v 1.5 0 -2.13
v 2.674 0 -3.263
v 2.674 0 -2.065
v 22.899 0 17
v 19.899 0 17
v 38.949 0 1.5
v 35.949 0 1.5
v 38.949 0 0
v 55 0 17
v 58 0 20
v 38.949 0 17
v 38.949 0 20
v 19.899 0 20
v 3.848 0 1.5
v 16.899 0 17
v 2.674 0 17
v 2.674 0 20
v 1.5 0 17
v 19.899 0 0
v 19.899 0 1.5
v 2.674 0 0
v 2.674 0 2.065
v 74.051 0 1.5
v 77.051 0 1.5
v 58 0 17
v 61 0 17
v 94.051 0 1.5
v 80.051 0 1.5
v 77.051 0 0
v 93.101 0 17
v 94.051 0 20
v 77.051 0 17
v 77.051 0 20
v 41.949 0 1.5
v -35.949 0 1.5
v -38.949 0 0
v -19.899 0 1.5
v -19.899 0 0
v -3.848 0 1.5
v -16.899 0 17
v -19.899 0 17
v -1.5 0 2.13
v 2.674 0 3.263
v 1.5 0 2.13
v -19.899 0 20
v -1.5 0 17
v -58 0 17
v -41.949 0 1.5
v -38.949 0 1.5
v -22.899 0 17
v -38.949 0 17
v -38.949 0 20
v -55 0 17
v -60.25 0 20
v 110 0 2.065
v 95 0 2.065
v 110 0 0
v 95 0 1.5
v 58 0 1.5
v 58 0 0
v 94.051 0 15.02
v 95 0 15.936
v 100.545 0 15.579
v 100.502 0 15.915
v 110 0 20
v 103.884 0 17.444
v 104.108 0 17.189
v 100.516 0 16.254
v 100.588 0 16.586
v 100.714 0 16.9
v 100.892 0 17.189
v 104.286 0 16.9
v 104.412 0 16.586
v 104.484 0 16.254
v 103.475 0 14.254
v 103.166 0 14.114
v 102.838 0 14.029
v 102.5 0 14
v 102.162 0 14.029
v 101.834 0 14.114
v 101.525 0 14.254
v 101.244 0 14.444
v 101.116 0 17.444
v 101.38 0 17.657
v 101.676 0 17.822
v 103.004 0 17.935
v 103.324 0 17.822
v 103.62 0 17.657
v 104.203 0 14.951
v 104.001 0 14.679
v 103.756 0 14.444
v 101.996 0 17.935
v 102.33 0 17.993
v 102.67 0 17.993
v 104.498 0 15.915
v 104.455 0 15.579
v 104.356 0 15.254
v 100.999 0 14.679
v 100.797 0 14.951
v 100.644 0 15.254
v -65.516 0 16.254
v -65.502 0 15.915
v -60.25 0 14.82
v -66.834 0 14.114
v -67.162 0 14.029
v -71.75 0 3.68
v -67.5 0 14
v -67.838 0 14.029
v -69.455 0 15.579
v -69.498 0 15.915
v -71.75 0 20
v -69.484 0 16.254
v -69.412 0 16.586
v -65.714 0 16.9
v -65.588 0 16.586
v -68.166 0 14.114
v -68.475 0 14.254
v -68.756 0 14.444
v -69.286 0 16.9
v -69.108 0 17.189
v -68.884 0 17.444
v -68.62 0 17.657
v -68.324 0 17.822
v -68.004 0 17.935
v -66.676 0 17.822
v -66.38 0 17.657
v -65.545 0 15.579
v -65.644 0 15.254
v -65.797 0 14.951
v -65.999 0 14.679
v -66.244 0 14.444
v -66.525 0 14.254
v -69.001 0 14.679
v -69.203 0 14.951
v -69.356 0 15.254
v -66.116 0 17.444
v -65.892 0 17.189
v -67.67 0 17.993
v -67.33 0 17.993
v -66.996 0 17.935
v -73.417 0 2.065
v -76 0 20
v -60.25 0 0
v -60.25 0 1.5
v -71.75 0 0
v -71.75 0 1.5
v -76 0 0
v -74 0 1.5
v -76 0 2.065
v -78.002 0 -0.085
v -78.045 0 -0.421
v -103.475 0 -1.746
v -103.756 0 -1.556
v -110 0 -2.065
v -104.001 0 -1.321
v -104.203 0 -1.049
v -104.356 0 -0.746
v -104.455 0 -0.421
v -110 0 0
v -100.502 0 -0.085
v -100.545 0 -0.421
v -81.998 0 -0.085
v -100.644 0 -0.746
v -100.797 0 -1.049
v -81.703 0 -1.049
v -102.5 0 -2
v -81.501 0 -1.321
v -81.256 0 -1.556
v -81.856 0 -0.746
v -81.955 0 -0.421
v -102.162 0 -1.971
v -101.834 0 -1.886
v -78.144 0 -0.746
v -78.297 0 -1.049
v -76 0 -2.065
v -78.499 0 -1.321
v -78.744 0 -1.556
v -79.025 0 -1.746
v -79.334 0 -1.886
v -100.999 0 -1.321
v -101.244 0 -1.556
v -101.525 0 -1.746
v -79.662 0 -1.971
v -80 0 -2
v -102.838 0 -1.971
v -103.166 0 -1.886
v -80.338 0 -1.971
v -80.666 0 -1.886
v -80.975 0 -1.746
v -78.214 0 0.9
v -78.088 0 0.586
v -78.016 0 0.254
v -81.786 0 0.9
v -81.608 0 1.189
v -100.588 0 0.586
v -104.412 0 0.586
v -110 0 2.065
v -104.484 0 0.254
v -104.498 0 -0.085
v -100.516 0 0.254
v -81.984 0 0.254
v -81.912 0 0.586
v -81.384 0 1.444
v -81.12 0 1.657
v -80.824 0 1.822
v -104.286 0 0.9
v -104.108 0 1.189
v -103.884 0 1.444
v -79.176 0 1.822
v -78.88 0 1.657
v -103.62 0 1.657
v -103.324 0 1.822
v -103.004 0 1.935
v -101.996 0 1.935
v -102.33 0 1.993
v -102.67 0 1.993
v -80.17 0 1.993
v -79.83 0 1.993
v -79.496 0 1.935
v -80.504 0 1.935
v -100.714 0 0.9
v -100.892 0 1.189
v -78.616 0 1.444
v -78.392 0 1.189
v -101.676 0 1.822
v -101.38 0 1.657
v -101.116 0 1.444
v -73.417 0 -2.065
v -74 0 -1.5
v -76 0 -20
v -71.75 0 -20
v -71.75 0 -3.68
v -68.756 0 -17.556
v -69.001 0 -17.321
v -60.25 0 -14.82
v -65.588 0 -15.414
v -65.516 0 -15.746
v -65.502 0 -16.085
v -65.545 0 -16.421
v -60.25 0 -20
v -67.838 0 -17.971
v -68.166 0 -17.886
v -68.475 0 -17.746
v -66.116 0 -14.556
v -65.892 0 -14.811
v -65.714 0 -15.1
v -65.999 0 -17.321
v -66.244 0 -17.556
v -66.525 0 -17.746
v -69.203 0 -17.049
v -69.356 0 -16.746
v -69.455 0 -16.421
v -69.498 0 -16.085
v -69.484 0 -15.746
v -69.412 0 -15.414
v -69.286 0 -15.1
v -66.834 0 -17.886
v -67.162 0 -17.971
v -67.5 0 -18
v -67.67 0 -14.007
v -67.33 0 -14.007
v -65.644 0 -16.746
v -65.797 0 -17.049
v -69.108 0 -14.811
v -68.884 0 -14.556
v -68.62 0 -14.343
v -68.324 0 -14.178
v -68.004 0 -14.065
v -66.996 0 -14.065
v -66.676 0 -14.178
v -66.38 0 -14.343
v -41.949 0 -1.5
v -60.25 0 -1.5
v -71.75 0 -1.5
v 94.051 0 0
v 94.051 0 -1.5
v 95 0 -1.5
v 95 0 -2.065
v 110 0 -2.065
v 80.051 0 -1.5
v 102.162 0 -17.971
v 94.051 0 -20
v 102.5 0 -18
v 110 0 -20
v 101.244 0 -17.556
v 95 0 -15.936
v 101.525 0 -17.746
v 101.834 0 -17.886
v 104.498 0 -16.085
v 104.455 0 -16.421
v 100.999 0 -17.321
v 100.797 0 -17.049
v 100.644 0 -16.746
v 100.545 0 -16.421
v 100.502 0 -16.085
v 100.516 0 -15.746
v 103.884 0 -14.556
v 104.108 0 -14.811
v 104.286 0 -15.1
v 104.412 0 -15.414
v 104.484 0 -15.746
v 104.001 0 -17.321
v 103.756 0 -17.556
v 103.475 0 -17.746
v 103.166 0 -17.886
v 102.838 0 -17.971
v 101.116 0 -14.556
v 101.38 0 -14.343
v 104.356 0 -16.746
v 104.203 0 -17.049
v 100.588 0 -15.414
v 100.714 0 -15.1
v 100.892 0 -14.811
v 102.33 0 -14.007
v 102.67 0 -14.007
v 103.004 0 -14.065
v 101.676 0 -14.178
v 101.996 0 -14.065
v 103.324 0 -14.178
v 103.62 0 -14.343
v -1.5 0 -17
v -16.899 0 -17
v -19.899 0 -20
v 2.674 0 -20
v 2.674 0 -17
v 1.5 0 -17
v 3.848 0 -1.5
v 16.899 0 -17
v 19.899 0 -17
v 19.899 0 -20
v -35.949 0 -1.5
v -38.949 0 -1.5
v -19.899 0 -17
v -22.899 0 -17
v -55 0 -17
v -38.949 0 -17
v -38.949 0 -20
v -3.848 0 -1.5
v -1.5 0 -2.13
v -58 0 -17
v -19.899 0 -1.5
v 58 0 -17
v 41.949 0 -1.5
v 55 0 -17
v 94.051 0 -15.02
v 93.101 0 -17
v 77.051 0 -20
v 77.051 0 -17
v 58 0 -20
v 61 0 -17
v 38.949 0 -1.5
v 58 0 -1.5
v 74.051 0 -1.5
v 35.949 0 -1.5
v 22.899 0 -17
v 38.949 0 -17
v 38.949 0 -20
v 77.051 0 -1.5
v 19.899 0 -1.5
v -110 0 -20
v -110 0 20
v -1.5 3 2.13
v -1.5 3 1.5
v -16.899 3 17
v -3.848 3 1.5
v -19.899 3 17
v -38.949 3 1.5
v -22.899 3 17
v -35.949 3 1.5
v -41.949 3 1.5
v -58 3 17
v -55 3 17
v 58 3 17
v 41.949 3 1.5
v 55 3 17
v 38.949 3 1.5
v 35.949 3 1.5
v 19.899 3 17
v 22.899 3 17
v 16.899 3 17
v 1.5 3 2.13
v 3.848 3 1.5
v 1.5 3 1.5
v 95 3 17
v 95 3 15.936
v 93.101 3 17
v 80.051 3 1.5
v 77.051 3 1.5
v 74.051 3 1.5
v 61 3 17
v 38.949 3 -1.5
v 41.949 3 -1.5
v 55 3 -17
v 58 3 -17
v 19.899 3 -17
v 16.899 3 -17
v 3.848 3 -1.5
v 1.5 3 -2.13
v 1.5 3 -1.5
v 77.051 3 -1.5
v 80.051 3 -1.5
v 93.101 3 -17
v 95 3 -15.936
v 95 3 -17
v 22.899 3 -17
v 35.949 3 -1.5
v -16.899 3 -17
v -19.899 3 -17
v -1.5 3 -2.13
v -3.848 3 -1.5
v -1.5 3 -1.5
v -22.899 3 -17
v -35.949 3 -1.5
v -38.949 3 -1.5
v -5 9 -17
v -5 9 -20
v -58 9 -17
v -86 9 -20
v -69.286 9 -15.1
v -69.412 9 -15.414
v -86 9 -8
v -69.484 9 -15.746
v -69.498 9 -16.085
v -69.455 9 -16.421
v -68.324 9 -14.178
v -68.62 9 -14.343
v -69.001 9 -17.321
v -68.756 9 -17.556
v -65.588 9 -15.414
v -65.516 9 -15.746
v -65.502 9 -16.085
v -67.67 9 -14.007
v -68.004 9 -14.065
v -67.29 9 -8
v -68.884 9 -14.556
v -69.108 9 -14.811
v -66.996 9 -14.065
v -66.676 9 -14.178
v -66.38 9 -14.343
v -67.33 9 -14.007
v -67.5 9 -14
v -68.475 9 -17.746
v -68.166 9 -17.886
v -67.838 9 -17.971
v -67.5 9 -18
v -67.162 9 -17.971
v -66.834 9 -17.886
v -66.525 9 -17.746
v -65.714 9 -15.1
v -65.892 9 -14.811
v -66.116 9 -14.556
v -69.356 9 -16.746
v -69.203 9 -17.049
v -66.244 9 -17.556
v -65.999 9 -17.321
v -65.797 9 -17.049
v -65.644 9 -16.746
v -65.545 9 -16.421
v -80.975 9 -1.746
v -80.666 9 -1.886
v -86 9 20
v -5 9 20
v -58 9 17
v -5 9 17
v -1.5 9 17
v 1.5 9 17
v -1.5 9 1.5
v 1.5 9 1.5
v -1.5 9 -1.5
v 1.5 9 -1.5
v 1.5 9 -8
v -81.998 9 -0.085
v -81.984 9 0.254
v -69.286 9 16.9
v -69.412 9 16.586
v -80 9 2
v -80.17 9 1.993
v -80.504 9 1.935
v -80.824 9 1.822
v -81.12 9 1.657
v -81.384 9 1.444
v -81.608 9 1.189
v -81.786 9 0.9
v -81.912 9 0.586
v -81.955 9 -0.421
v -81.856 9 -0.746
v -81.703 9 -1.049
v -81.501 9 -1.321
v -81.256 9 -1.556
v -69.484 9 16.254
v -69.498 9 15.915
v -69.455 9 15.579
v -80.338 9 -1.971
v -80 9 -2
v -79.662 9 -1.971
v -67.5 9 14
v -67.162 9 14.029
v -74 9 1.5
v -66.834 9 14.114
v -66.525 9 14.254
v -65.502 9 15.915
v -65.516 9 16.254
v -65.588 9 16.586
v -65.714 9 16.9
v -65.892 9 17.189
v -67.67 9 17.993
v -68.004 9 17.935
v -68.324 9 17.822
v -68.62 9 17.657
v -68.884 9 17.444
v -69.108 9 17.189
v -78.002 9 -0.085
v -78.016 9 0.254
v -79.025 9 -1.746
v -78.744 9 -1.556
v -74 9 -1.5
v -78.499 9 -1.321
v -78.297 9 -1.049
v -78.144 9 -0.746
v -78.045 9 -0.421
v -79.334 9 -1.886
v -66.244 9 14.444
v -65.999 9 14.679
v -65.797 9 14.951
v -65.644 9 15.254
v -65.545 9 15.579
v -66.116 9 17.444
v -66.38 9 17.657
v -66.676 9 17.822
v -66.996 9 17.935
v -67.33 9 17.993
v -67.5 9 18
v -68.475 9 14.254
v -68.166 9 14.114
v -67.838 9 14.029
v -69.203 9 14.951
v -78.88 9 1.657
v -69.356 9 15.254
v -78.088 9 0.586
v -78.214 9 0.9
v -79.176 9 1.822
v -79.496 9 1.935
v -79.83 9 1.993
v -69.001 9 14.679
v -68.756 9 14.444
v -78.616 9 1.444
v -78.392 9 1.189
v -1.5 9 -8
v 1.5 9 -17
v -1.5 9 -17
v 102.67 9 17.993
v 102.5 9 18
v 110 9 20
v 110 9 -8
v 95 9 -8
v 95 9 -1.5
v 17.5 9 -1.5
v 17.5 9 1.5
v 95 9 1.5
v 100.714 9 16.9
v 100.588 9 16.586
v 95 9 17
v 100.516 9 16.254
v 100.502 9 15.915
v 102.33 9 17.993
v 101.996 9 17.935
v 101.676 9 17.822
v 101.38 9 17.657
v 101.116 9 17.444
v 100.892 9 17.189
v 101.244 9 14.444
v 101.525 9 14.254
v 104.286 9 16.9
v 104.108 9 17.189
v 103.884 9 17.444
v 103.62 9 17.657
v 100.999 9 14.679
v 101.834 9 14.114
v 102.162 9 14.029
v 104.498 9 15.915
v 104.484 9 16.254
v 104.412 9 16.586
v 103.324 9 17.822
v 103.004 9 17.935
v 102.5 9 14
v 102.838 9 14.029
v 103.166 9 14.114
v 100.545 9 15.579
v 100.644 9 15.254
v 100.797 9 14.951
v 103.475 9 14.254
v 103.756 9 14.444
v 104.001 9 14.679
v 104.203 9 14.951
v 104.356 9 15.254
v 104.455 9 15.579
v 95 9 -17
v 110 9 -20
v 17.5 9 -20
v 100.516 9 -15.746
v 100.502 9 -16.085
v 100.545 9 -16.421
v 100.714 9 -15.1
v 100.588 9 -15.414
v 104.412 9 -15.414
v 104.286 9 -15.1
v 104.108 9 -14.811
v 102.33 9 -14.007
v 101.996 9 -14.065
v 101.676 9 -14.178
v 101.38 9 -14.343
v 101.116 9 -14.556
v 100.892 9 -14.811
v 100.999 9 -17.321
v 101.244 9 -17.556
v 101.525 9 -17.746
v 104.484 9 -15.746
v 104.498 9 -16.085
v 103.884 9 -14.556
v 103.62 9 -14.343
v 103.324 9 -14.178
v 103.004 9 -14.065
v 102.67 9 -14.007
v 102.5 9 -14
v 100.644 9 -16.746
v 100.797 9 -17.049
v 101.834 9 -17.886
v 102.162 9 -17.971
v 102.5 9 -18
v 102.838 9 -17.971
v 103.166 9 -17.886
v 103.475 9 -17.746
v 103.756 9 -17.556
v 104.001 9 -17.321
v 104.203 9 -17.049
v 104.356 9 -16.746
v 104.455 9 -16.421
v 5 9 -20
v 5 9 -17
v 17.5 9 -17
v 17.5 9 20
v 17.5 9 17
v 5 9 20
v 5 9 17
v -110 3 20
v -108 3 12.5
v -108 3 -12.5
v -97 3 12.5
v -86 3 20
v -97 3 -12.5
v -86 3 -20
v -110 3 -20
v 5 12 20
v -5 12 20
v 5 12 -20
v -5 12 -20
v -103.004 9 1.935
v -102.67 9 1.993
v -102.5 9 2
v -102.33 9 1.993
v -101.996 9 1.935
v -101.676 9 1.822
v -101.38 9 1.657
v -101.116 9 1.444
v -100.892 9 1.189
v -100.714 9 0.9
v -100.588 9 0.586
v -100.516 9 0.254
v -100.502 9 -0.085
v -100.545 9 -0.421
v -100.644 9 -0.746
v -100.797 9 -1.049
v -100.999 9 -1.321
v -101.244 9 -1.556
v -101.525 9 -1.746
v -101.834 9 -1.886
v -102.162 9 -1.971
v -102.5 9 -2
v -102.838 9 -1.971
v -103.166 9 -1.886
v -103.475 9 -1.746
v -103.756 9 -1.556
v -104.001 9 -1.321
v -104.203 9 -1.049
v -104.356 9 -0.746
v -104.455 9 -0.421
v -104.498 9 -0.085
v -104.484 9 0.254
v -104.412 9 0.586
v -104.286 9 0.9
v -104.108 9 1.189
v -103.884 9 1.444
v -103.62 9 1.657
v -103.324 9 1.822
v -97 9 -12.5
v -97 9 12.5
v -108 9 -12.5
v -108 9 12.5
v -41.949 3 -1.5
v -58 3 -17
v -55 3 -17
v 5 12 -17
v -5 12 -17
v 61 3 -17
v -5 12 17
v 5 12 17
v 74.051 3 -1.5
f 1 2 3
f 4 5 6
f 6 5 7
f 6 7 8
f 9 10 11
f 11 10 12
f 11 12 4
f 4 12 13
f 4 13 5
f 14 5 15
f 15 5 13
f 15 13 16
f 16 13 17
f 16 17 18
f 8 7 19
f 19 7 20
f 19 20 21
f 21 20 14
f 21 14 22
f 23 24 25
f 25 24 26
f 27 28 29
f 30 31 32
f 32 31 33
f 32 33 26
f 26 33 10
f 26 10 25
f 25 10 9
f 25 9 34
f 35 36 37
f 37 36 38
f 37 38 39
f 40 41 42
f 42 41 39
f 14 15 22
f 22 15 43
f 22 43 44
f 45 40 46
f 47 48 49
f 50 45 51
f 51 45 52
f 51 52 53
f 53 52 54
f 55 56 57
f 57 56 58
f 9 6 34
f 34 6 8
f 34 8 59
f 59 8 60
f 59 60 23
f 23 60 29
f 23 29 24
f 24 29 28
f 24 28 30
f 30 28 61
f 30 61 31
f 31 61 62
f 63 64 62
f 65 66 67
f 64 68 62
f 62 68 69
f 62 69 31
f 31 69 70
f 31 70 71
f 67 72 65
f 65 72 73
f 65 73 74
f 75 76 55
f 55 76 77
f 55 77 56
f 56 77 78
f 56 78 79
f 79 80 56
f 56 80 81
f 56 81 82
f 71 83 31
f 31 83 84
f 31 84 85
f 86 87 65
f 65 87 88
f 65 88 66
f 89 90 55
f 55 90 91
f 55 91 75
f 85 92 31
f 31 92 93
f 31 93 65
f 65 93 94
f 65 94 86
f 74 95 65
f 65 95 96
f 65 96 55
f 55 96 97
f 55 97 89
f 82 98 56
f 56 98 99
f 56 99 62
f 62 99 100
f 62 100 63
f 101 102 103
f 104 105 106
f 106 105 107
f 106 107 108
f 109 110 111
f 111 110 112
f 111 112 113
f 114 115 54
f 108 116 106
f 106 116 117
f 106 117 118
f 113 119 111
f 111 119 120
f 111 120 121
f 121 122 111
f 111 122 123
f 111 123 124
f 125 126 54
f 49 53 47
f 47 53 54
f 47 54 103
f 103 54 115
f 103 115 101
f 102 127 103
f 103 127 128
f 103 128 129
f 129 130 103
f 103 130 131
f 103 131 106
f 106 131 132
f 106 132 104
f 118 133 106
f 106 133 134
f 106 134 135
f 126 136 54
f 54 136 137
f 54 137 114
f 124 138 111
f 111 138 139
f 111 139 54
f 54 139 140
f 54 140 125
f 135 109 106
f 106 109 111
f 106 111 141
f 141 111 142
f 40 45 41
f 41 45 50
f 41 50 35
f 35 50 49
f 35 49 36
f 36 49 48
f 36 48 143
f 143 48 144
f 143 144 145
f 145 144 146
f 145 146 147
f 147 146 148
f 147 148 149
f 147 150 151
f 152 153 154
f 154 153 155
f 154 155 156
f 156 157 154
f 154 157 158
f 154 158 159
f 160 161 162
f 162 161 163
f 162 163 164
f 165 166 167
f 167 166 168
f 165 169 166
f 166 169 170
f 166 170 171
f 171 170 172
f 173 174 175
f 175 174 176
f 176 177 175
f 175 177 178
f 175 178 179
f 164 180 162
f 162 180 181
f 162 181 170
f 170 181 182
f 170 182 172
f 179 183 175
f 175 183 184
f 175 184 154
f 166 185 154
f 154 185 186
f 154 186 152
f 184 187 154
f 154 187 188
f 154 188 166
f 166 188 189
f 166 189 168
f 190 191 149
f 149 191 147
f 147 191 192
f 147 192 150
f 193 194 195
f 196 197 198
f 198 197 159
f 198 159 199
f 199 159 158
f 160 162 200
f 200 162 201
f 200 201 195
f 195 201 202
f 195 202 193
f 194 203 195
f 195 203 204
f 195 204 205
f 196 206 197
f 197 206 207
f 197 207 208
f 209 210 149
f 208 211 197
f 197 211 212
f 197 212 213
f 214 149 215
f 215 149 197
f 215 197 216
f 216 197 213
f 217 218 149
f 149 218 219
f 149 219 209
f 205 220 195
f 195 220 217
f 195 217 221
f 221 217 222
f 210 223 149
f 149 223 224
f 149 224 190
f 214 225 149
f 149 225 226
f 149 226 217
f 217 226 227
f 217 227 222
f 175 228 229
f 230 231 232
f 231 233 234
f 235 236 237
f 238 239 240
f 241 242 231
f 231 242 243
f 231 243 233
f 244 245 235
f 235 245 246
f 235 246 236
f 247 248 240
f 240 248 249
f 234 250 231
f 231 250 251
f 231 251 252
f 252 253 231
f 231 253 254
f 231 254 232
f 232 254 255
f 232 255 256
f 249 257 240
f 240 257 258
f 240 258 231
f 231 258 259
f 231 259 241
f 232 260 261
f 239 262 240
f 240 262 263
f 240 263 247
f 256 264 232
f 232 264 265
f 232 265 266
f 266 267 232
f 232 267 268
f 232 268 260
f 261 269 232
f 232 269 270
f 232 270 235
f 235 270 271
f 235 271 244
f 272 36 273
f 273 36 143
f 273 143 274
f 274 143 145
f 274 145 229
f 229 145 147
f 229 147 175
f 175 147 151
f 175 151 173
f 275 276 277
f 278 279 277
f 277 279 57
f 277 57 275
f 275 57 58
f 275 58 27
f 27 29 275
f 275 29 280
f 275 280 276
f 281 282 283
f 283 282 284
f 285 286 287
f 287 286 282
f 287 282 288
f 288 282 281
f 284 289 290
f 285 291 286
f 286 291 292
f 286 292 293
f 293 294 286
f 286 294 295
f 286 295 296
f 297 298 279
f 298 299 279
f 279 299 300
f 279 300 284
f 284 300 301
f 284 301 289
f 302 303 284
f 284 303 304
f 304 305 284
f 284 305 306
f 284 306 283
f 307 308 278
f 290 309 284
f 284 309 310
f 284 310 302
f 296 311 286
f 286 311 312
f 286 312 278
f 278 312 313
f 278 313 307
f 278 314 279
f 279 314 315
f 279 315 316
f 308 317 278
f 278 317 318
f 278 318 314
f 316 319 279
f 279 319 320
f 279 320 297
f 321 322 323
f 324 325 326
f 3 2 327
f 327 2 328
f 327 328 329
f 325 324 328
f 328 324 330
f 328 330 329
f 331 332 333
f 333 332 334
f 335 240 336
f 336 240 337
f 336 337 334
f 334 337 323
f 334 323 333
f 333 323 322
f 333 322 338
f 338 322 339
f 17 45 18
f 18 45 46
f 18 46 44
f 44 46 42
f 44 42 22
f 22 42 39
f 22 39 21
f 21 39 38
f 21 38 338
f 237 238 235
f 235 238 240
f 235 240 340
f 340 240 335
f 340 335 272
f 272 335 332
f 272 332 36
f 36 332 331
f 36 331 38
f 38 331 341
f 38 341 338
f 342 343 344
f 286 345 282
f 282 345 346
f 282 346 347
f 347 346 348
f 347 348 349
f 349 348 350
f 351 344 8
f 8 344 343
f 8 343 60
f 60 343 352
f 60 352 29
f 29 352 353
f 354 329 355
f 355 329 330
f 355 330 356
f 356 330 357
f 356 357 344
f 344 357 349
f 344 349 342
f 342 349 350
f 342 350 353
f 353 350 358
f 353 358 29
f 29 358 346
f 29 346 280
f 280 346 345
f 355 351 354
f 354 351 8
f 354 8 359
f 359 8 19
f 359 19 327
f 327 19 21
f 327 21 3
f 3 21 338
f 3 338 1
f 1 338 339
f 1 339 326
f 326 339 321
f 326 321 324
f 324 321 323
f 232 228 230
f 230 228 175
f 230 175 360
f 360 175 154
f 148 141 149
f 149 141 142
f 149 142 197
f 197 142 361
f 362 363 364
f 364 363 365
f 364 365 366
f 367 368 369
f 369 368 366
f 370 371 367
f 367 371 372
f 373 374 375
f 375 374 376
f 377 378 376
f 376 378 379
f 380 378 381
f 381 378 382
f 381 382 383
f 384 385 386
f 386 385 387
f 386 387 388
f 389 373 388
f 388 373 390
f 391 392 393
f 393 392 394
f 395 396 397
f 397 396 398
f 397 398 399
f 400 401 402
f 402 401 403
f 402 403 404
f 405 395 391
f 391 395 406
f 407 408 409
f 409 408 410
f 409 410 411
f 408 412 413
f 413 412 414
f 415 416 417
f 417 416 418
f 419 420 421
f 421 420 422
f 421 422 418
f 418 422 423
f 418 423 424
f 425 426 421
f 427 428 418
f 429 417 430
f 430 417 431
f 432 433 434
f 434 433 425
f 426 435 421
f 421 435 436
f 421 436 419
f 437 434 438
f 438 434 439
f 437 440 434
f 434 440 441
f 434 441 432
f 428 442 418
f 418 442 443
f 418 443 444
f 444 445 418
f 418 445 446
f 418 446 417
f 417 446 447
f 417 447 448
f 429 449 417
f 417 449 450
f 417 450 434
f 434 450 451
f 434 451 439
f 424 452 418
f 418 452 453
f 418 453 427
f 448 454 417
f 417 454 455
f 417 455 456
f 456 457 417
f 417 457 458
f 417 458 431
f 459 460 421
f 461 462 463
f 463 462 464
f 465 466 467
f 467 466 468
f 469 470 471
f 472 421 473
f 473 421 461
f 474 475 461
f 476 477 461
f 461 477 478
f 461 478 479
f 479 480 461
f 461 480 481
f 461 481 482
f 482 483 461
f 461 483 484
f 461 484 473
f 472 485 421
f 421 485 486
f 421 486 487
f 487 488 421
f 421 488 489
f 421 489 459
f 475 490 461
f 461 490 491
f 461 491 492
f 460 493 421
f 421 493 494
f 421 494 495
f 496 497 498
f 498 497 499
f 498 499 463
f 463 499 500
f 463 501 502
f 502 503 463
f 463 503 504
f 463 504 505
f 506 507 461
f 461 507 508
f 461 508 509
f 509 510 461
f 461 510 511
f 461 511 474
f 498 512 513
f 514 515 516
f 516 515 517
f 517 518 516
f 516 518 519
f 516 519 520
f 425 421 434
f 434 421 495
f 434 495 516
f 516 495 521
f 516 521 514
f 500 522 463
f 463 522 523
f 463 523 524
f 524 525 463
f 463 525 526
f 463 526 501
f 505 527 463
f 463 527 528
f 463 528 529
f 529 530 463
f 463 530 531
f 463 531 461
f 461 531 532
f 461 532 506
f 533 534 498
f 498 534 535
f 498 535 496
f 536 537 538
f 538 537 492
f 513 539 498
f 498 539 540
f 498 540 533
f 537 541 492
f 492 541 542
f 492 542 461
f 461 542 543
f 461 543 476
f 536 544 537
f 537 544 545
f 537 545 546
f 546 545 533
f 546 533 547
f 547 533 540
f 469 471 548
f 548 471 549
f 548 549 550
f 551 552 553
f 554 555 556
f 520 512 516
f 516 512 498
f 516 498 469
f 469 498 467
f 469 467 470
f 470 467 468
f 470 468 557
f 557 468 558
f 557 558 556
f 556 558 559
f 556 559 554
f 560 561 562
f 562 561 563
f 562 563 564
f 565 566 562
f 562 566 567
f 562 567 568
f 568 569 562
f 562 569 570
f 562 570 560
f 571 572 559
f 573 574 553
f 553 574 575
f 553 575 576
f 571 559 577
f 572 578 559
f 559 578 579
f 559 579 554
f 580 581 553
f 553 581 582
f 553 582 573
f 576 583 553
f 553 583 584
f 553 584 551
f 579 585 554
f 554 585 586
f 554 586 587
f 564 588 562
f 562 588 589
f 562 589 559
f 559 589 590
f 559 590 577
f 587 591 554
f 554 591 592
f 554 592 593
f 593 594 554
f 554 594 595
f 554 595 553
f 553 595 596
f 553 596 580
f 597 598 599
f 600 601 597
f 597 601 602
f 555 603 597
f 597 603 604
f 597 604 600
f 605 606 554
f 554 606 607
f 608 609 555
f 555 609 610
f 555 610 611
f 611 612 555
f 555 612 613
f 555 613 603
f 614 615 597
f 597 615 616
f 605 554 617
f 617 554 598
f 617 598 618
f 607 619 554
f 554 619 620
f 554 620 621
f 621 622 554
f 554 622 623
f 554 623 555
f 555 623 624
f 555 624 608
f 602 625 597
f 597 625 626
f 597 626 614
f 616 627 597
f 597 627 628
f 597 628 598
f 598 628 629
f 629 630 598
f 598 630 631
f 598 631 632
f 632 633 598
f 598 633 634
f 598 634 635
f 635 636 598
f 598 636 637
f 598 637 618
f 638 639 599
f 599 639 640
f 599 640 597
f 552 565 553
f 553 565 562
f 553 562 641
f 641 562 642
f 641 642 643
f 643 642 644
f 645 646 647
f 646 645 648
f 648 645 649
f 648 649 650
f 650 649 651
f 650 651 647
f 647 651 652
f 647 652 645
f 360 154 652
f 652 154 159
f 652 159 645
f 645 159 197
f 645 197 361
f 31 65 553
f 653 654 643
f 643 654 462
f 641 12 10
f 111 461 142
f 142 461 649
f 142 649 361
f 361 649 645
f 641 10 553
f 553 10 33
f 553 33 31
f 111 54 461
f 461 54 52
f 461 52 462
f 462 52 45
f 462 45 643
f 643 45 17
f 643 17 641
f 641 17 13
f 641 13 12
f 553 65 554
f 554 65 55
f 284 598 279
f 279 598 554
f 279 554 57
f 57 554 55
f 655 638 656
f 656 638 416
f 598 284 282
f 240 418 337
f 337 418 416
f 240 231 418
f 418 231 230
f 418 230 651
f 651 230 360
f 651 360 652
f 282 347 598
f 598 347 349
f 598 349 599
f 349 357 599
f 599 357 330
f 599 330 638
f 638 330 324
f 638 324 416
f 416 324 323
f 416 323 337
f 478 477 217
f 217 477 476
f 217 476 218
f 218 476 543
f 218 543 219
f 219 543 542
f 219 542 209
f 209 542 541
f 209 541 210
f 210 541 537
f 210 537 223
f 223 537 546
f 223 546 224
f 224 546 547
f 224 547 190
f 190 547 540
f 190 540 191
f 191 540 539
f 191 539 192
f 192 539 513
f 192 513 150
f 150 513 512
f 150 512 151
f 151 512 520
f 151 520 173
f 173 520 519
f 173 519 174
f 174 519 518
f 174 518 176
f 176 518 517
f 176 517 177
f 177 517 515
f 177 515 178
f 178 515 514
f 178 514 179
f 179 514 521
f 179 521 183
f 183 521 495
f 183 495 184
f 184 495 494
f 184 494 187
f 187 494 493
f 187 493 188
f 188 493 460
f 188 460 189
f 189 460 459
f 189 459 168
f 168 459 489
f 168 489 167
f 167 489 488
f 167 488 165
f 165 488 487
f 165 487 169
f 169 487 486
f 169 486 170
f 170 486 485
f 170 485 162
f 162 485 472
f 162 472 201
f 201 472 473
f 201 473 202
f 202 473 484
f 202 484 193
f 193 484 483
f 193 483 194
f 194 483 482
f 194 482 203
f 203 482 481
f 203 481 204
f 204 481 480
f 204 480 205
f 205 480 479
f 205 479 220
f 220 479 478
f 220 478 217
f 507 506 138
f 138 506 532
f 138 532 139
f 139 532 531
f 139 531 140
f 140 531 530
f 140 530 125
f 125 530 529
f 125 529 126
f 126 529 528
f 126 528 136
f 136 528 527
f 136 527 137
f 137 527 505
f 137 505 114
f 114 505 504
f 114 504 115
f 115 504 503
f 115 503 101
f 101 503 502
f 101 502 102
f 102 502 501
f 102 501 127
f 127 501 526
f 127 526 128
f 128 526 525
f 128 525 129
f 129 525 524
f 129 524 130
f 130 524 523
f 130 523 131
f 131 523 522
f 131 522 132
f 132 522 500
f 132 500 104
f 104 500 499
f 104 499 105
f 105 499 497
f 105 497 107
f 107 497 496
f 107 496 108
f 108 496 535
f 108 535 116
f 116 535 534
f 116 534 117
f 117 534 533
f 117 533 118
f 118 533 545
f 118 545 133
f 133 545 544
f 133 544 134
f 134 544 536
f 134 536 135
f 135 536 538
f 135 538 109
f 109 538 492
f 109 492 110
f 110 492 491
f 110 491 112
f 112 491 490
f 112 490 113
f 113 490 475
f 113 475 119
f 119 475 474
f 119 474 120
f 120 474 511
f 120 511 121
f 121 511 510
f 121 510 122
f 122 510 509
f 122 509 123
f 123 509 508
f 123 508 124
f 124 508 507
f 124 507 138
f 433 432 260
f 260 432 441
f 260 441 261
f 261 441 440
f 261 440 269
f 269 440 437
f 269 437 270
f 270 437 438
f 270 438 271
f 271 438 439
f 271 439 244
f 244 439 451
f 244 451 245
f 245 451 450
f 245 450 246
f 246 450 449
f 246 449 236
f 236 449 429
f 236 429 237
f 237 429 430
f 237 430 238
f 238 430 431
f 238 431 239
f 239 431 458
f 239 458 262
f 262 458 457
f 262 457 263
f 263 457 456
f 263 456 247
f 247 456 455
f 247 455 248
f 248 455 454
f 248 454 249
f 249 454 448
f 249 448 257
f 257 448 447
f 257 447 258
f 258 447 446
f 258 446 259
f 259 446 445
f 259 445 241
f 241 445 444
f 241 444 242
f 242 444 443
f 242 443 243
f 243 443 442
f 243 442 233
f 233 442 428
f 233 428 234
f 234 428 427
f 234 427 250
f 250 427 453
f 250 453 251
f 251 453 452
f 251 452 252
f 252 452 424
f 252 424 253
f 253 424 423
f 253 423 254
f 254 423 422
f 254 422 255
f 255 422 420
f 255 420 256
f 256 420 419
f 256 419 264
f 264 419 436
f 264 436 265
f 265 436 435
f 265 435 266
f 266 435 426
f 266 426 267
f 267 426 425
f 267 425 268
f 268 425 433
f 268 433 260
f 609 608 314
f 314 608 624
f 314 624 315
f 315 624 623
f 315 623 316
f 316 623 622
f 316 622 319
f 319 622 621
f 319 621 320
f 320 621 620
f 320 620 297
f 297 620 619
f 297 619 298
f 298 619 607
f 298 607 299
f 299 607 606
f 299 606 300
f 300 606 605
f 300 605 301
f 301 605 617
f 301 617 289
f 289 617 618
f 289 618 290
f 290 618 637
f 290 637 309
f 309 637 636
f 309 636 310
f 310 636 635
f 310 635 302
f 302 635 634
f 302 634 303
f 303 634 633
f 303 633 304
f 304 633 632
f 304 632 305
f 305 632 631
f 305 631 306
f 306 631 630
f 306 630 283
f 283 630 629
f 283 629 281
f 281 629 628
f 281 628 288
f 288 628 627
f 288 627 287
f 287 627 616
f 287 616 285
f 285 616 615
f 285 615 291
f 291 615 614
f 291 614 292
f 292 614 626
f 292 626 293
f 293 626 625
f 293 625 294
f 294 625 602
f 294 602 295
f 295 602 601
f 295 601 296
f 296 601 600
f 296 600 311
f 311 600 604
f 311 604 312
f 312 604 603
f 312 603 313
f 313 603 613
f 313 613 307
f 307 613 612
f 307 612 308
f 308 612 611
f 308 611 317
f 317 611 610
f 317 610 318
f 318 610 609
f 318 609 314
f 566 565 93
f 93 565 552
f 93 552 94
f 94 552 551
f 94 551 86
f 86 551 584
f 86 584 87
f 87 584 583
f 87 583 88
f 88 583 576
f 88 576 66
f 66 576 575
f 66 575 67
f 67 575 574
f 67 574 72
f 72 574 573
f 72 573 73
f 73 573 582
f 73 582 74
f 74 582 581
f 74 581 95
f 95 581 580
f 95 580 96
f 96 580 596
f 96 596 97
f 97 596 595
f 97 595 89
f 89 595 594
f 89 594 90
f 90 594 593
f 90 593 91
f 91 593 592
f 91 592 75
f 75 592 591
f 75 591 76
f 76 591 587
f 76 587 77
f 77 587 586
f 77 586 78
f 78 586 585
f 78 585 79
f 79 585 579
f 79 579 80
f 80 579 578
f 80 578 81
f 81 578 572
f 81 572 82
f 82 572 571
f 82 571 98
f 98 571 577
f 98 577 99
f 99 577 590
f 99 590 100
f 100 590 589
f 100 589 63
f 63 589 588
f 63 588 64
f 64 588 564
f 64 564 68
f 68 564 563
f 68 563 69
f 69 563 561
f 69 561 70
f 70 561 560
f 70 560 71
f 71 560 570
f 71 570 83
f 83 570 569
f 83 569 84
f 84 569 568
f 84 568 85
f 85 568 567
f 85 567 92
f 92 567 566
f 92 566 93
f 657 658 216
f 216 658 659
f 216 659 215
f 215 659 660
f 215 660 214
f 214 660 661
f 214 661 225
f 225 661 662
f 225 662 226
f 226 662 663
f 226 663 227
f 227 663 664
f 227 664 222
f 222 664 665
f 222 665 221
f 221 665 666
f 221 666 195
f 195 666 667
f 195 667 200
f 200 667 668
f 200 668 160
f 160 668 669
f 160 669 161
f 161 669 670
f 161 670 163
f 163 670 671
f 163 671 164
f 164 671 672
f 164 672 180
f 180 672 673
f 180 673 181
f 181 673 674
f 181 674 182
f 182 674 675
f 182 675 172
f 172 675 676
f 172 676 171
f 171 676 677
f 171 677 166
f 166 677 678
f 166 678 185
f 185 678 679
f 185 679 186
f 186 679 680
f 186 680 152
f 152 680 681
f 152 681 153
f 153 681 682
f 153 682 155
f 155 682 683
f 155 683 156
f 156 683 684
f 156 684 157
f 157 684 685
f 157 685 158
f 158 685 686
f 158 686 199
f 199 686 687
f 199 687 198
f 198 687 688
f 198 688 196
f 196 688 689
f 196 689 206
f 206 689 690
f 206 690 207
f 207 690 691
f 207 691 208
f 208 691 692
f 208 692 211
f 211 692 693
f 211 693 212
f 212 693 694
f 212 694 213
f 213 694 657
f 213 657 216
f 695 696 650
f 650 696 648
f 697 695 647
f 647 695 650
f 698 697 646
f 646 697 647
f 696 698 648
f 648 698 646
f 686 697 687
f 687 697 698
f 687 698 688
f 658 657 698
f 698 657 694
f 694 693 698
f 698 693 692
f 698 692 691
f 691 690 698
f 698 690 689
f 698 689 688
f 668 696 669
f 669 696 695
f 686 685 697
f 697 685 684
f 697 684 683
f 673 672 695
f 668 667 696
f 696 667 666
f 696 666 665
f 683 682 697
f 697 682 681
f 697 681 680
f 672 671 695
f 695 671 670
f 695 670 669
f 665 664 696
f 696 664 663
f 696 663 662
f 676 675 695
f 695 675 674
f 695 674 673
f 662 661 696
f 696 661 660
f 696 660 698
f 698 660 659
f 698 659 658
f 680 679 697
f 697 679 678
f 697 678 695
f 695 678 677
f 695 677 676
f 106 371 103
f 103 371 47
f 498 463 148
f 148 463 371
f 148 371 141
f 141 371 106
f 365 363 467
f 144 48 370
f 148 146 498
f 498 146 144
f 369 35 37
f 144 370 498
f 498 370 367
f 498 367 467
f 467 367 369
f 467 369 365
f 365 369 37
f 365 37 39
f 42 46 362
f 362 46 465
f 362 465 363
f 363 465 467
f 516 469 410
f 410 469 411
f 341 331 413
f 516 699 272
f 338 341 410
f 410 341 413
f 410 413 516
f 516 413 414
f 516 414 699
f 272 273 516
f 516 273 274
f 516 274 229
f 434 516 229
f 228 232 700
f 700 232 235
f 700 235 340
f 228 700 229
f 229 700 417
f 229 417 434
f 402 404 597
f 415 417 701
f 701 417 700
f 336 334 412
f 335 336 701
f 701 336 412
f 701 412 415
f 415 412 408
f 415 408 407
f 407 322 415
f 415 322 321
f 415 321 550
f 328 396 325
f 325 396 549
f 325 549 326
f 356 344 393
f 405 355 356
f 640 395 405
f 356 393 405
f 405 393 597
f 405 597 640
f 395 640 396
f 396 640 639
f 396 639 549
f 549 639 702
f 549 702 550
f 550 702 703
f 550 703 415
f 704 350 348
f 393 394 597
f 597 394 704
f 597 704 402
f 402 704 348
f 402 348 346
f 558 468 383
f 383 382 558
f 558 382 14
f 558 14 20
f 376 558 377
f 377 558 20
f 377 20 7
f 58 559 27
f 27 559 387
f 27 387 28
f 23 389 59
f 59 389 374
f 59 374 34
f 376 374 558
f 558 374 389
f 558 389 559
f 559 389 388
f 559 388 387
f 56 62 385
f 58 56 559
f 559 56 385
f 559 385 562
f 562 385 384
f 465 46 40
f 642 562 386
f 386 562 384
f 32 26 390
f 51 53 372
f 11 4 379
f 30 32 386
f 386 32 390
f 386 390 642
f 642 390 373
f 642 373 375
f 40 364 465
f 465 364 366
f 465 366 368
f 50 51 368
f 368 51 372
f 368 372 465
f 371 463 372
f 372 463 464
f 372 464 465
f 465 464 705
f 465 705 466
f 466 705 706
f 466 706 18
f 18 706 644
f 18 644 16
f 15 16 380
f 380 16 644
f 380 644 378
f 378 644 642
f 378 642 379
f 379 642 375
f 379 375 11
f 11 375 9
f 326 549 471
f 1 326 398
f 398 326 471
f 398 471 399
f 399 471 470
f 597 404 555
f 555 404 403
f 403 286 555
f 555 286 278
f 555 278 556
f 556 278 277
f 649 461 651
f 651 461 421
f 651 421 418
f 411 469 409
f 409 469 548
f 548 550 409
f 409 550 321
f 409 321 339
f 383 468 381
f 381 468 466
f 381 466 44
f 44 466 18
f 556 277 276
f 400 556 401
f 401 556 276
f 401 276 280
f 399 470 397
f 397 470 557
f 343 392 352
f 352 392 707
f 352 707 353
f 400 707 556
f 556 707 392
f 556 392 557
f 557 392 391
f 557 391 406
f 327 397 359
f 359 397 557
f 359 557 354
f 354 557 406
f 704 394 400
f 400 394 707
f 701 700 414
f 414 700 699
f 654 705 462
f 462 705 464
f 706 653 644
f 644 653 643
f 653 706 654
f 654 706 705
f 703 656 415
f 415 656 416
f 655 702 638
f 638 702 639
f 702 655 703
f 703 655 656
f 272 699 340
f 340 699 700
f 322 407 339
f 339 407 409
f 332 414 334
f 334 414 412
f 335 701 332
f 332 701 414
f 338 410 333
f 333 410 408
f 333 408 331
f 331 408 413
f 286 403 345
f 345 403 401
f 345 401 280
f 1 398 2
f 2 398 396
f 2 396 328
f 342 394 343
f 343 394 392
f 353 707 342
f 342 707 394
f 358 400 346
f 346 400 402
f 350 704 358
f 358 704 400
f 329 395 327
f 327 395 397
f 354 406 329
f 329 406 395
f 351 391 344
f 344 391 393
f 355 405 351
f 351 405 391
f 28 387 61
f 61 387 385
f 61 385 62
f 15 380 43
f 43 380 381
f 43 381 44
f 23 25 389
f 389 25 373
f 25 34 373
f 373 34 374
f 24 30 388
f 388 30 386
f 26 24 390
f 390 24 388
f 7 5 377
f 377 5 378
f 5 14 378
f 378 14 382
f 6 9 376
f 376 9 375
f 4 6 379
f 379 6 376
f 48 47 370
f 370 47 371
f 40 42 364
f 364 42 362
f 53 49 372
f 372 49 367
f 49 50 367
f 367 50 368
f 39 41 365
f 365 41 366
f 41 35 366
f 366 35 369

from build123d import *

# Parameters (mm, degrees)
BASESKETCH_W          = 220
BASESKETCH_H          = 40
BASE_DEPTH            = 3
HOLESSKETCH_R         = 2
HOLES_DEPTH           = 112.843640856
SUPPORTSKETCH_W       = 11
SUPPORTSKETCH_H       = 25
SUPPORTSKETCH_R       = 2
SUPPORTSKETCH_W_2     = 196
SUPPORTSKETCH_H_2     = 40
SUPPORTSKETCH_W_3     = 93.5
SUPPORTSKETCH_H_3     = 15.5
SUPPORT_DEPTH         = 6
CONNECTORSKETCH_W     = 10
CONNECTORSKETCH_H     = 3
CONNECTOR_DEPTH       = 3
WEIGHTREDUCTION_DEPTH = 113.165056947


with BuildPart() as part:
    # BaseSketch → Base (new body)
    with BuildSketch(Plane(origin=(0, 0, 0), x_dir=(1, 0, 0), z_dir=(0, 1, 0))):
        Rectangle(BASESKETCH_W, BASESKETCH_H)
    extrude(amount=BASE_DEPTH)

    # HolesSketch → Holes (cut, through all)
    with BuildSketch(Plane.XZ):
        with Locations(Location((-102.5, 0, 0), (0, 0, 270))):
            Circle(HOLESSKETCH_R)
        with Locations(Location((-80, 0, 0), (0, 0, 270))):
            Circle(HOLESSKETCH_R)
        with Locations(Location((-67.5, 16, 0), (0, 0, 270))):
            Circle(HOLESSKETCH_R)
        with Locations(Location((-67.5, -16, 0), (0, 0, 270))):
            Circle(HOLESSKETCH_R)
        with Locations(Location((102.5, -16, 0), (0, 0, 270))):
            Circle(HOLESSKETCH_R)
        with Locations(Location((102.5, 16, 0), (0, 0, 270))):
            Circle(HOLESSKETCH_R)
    extrude(amount=-HOLES_DEPTH, mode=Mode.SUBTRACT)

    # SupportSketch → Support (add)
    with BuildSketch(Plane(origin=(0, 3, 0), x_dir=(1, 0, 0), z_dir=(0, 1, 0))):
        with Locations((-102.5, 0)):
            Rectangle(SUPPORTSKETCH_W, SUPPORTSKETCH_H)
        with Locations(Location((-102.5, 0, 0), (0, 0, 90))):
            Circle(SUPPORTSKETCH_R, mode=Mode.SUBTRACT)
        with Locations((12, 0)):
            Rectangle(SUPPORTSKETCH_W_2, SUPPORTSKETCH_H_2)
        with Locations(Location((-67.5, -16, 0), (0, 0, 90))):
            Circle(SUPPORTSKETCH_R, mode=Mode.SUBTRACT)
        Polygon((-1.5, -1.5), (-1.5, -17), (-58, -17), (-74, -1.5), align=None, mode=Mode.SUBTRACT)
        with Locations(Location((102.5, -16, 0), (0, 0, 90))):
            Circle(SUPPORTSKETCH_R, mode=Mode.SUBTRACT)
        with Locations((48.25, -9.25)):
            Rectangle(SUPPORTSKETCH_W_3, SUPPORTSKETCH_H_3, mode=Mode.SUBTRACT)
        with Locations(Location((-80, 0, 0), (0, 0, 90))):
            Circle(SUPPORTSKETCH_R, mode=Mode.SUBTRACT)
        Polygon((-58, 17), (-1.5, 17), (-1.5, 1.5), (-74, 1.5), align=None, mode=Mode.SUBTRACT)
        with Locations(Location((-67.5, 16, 0), (0, 0, 90))):
            Circle(SUPPORTSKETCH_R, mode=Mode.SUBTRACT)
        with Locations((48.25, 9.25)):
            Rectangle(SUPPORTSKETCH_W_3, SUPPORTSKETCH_H_3, mode=Mode.SUBTRACT)
        with Locations(Location((102.5, 16, 0), (0, 0, 90))):
            Circle(SUPPORTSKETCH_R, mode=Mode.SUBTRACT)
    extrude(amount=SUPPORT_DEPTH)

    # ConnectorSketch → Connector (add)
    with BuildSketch(Plane(origin=(0, 9, 0), x_dir=(1, 0, 0), z_dir=(0, 1, 0))):
        with Locations((0, -18.5)):
            Rectangle(CONNECTORSKETCH_W, CONNECTORSKETCH_H)
        with Locations((0, 18.5)):
            Rectangle(CONNECTORSKETCH_W, CONNECTORSKETCH_H)
    extrude(amount=CONNECTOR_DEPTH)

    # WeightReductionSketch → WeightReduction (cut, symmetric)
    with BuildSketch(Plane(origin=(0, 9, 0), x_dir=(1, 0, 0), z_dir=(0, 1, 0))):
        Polygon((-74, 1.5), (-58, 17), (-41.949280136, 1.5), align=None)
        Polygon((-55, 17), (-38.949280136, 1.5), (-22.898560272, 17), align=None)
        Polygon((-19.898560272, 17), (-35.949280136, 1.5), (-3.847840409, 1.5), align=None)
        Polygon((-16.898560272, 17), (-1.5, 2.129783197), (-1.5, 17), align=None)
        Polygon((1.5, 2.129783197), (16.898560272, 17), (1.5, 17), align=None)
        Polygon((3.847840409, 1.5), (19.898560272, 17), (35.949280136, 1.5), align=None)
        Polygon((38.949280136, 1.5), (22.898560272, 17), (55, 17), align=None)
        Polygon((41.949280136, 1.5), (58, 17), (74.050719864, 1.5), align=None)
        Polygon((77.050719864, 1.5), (61, 17), (93.101439728, 17), align=None)
        Polygon((95, 15.936352019), (80.050719864, 1.5), (95, 1.5), align=None)
    weightreduction = extrude(amount=WEIGHTREDUCTION_DEPTH, both=True, mode=Mode.SUBTRACT)

    # WeightReductionMirror: WeightReduction across plane
    add(weightreduction.mirror(Plane.XY), mode=Mode.SUBTRACT)


solid = part.part
